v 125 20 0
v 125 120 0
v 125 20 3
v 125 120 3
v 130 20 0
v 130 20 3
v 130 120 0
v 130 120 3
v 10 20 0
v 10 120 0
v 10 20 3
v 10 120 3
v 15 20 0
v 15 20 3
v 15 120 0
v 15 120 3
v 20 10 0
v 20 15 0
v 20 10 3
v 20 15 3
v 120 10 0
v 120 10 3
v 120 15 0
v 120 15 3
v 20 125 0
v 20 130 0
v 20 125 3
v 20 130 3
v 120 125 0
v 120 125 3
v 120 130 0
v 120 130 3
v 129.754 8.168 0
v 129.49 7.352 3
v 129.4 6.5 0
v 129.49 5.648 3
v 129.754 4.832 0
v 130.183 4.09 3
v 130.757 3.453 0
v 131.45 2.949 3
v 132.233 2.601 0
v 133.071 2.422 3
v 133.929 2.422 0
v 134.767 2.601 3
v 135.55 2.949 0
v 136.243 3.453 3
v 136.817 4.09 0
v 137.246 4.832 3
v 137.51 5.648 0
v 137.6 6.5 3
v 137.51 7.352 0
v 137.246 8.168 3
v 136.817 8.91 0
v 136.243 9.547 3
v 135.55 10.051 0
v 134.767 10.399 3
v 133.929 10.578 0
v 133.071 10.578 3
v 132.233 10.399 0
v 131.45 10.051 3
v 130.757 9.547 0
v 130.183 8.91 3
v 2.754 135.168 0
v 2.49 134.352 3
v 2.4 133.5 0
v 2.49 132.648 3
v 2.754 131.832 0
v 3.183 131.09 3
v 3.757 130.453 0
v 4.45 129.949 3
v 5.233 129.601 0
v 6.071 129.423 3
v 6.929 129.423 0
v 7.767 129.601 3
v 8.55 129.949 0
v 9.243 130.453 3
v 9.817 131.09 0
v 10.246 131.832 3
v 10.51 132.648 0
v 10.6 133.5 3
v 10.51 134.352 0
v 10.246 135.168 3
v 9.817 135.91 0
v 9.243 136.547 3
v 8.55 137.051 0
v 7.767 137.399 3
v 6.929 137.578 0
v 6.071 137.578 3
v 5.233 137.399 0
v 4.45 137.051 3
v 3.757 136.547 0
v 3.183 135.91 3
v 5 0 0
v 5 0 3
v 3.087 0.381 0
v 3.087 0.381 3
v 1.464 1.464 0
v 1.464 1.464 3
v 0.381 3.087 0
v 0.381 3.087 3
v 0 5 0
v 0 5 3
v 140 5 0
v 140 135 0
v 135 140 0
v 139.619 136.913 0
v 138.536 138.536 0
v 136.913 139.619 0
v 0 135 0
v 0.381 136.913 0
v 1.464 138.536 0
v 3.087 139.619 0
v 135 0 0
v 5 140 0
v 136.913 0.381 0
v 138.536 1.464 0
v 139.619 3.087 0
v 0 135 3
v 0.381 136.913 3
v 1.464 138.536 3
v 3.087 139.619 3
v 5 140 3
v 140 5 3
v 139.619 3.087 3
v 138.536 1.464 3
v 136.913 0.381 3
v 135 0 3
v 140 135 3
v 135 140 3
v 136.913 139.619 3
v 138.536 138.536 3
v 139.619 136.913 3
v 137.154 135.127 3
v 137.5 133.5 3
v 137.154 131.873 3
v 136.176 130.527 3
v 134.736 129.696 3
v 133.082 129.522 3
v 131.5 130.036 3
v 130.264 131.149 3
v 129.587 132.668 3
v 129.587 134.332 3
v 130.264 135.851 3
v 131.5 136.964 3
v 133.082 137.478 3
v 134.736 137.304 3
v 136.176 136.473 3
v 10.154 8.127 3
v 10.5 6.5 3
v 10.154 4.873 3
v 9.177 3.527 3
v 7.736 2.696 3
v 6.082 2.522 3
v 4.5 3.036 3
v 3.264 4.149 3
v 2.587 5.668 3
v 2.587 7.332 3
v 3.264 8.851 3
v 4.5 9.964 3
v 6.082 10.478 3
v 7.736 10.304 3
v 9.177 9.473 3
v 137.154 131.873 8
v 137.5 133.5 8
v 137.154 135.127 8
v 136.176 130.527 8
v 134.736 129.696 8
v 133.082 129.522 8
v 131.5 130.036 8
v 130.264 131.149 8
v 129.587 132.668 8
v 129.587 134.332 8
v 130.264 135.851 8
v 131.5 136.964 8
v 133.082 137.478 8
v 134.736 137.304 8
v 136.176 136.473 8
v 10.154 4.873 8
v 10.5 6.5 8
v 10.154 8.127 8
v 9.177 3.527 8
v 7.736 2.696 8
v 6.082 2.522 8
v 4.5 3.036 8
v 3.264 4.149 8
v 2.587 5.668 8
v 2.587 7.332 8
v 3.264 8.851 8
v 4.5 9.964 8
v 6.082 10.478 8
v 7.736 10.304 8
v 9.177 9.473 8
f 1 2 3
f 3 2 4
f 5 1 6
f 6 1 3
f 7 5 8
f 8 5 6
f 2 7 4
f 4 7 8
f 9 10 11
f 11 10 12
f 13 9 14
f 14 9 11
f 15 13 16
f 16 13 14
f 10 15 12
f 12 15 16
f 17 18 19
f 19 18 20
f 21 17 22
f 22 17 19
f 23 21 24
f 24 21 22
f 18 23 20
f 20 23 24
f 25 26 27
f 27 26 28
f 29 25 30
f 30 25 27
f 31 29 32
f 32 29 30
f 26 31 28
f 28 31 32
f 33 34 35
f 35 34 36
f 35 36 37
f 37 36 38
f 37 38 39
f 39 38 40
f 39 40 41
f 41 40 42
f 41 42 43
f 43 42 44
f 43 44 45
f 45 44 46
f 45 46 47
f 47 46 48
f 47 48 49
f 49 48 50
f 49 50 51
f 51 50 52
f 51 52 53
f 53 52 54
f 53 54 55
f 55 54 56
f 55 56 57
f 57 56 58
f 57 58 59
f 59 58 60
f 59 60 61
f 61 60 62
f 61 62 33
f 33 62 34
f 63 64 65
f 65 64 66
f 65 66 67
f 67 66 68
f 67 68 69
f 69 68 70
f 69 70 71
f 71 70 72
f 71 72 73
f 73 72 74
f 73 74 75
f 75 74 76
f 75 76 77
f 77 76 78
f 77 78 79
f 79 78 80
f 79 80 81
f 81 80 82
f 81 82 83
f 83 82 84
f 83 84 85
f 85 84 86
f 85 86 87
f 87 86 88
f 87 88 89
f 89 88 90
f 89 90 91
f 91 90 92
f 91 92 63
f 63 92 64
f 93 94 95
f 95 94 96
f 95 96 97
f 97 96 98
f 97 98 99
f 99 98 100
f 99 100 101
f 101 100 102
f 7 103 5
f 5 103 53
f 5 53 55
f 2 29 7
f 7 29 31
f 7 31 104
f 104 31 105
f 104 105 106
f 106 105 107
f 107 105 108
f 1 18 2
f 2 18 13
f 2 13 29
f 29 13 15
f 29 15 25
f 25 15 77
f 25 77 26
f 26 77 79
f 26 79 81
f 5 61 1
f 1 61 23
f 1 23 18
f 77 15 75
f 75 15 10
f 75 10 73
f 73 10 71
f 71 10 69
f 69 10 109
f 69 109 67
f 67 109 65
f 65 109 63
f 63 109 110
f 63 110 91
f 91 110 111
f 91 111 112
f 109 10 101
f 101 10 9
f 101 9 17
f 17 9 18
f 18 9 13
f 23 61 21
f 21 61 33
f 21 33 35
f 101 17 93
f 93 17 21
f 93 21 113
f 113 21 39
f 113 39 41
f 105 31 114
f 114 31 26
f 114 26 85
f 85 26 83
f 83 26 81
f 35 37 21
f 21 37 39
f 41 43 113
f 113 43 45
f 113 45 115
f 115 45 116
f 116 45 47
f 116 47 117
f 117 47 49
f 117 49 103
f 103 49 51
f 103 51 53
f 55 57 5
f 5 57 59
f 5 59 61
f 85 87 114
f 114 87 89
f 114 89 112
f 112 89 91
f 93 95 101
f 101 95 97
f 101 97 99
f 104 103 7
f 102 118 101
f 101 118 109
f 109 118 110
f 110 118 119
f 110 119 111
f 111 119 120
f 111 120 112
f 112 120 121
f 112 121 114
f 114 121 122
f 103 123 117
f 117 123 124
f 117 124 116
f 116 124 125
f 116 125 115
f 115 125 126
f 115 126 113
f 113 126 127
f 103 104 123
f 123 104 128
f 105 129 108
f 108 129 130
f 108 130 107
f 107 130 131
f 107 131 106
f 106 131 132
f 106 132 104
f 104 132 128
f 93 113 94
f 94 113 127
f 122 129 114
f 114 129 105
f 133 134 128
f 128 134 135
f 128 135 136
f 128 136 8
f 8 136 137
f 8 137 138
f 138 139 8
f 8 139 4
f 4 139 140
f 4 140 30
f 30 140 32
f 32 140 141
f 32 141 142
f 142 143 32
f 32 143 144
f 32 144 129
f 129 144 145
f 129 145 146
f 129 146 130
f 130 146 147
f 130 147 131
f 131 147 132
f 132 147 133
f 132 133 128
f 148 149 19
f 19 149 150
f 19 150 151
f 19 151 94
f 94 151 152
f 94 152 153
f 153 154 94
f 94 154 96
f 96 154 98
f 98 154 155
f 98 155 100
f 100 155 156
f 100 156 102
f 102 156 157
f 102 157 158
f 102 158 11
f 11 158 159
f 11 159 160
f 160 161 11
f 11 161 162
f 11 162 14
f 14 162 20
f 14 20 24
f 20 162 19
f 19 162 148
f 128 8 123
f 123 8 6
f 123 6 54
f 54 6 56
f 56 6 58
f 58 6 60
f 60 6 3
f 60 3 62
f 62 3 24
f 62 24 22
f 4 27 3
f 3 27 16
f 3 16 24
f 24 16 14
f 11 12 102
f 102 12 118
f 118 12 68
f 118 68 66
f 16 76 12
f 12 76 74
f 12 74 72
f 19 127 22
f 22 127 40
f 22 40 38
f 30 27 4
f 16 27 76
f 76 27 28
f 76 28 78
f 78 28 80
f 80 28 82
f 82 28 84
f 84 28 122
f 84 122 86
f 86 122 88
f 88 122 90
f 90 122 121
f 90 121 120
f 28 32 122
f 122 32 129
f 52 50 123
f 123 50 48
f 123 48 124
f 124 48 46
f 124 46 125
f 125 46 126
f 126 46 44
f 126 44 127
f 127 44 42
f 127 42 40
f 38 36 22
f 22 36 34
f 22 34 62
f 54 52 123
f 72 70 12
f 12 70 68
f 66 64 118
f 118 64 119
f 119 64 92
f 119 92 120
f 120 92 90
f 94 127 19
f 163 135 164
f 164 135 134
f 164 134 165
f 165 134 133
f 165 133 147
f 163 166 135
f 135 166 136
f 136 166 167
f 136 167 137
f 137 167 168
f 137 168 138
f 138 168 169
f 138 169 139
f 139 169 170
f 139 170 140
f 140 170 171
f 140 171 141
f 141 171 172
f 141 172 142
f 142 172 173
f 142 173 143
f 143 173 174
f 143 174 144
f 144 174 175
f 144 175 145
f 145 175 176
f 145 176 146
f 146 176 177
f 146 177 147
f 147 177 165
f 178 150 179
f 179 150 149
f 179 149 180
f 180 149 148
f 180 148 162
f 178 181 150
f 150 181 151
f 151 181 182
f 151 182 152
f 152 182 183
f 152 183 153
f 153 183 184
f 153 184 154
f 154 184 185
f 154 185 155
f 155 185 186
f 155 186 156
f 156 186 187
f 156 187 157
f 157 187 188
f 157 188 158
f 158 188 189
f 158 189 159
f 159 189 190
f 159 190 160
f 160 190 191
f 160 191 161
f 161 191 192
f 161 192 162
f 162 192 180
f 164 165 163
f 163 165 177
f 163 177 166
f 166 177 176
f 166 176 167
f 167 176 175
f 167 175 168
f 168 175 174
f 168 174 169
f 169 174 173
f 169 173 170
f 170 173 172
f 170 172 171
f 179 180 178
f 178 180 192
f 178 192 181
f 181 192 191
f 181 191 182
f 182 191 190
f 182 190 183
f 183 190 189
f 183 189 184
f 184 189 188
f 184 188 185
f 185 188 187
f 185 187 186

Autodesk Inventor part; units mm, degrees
ref_plane "YZ Plane" through (0, 0, 0) normal (1, 0, 0) x (0, 1, 0)
ref_plane "XZ Plane" through (0, 0, 0) normal (0, 1, 0) x (-1, 0, 0)
ref_plane "XY Plane" through (0, 0, 0) normal (0, 0, 1) x (1, 0, 0)
sketch "Sketch1" plane through (0, 0, 0) normal (0, 0, 1) x (1, 0, 0)
  line L0 (0, 0) -> (140, 0)
  line L1 (140, 0) -> (140, 140)
  line L2 (140, 140) -> (0, 140)
  line L3 (0, 140) -> (0, 0)
  dimension "d0" = 140
  dimension "d1" = 140
extrude "Extrusion1" add sketch "Sketch1" along normal blind 3
fillet "Fillet1" radius 5 4 edges at (140, 140, 1.5) (140, 0, 1.5) (0, 140, 1.5) (0, 0, 1.5)
sketch "Sketch4" plane through (0, 0, 3) normal (0, 0, 1) x (1, 0, 0)
  line L0 (135, 140) -> (5, 140) projected
  line L1 (0, 135) -> (0, 5) projected
  line L2 (140, 5) -> (140, 135) projected
  line L3 (5, 0) -> (135, 0) projected
  point P0 (0, 0)
  point P1 (6.5, 133.5)
  point P2 (133.5, 6.5)
  dimension "d30" = 6.5
  dimension "d31" = 6.5
  dimension "d34" = 6.5
  dimension "d35" = 6.5
hole "Hole2" at (133.5, 6.5, 3) at (6.5, 133.5, 3) direction (0, 0, -1) diameter 8.2 depth 15
sketch "Sketch5" plane through (0, 0, 3) normal (0, 0, 1) x (1, 0, 0)
  line L0 (20, 130) -> (120, 130)
  line L1 (120, 130) -> (120, 125)
  line L2 (120, 125) -> (20, 125)
  line L3 (20, 125) -> (20, 130)
  line L4 (135, 140) -> (5, 140) projected
  line L5 (140, 5) -> (140, 135) projected
  line L6 (20, 15) -> (120, 15)
  line L7 (120, 15) -> (120, 10)
  line L8 (120, 10) -> (20, 10)
  line L9 (20, 10) -> (20, 15)
  line L10 (5, 0) -> (135, 0) projected
  line L11 (10, 120) -> (15, 120)
  line L12 (15, 120) -> (15, 20)
  line L13 (15, 20) -> (10, 20)
  line L14 (10, 20) -> (10, 120)
  line L15 (0, 135) -> (0, 5) projected
  line L16 (125, 120) -> (130, 120)
  line L17 (130, 120) -> (130, 20)
  line L18 (130, 20) -> (125, 20)
  line L19 (125, 20) -> (125, 120)
  point P0 (0, 0)
  dimension "d45" = 10
  dimension "d46" = 5
  dimension "d47" = 20
  dimension "d48" = 100
  dimension "d49" = 100
  dimension "d50" = 5
  dimension "d51" = 20
  dimension "d52" = 10
  dimension "d53" = 5
  dimension "d54" = 100
  dimension "d55" = 20
  dimension "d56" = 10
  dimension "d57" = 5
  dimension "d58" = 100
  dimension "d59" = 10
  dimension "d60" = 20
extrude "Extrusion4" cut sketch "Sketch5" against normal blind 10
sketch "Sketch6" plane through (0, 0, 3) normal (0, 0, 1) x (1, 0, 0)
  circle A0 centre (6.5, 6.5) radius 4
  circle A1 centre (133.5, 133.5) radius 4
  line L0 (135, 140) -> (5, 140) projected
  line L1 (140, 5) -> (140, 135) projected
  line L2 (5, 0) -> (135, 0) projected
  line L3 (0, 135) -> (0, 5) projected
  point P0 (0, 0)
  dimension "d66" = 8
  dimension "d67" = 8
  dimension "d68" = 6.5
  dimension "d69" = 6.5
  dimension "d70" = 6.5
  dimension "d71" = 6.5
extrude "Extrusion5" add sketch "Sketch6" along normal blind 5
properties part number "Led deksel niet hub"
